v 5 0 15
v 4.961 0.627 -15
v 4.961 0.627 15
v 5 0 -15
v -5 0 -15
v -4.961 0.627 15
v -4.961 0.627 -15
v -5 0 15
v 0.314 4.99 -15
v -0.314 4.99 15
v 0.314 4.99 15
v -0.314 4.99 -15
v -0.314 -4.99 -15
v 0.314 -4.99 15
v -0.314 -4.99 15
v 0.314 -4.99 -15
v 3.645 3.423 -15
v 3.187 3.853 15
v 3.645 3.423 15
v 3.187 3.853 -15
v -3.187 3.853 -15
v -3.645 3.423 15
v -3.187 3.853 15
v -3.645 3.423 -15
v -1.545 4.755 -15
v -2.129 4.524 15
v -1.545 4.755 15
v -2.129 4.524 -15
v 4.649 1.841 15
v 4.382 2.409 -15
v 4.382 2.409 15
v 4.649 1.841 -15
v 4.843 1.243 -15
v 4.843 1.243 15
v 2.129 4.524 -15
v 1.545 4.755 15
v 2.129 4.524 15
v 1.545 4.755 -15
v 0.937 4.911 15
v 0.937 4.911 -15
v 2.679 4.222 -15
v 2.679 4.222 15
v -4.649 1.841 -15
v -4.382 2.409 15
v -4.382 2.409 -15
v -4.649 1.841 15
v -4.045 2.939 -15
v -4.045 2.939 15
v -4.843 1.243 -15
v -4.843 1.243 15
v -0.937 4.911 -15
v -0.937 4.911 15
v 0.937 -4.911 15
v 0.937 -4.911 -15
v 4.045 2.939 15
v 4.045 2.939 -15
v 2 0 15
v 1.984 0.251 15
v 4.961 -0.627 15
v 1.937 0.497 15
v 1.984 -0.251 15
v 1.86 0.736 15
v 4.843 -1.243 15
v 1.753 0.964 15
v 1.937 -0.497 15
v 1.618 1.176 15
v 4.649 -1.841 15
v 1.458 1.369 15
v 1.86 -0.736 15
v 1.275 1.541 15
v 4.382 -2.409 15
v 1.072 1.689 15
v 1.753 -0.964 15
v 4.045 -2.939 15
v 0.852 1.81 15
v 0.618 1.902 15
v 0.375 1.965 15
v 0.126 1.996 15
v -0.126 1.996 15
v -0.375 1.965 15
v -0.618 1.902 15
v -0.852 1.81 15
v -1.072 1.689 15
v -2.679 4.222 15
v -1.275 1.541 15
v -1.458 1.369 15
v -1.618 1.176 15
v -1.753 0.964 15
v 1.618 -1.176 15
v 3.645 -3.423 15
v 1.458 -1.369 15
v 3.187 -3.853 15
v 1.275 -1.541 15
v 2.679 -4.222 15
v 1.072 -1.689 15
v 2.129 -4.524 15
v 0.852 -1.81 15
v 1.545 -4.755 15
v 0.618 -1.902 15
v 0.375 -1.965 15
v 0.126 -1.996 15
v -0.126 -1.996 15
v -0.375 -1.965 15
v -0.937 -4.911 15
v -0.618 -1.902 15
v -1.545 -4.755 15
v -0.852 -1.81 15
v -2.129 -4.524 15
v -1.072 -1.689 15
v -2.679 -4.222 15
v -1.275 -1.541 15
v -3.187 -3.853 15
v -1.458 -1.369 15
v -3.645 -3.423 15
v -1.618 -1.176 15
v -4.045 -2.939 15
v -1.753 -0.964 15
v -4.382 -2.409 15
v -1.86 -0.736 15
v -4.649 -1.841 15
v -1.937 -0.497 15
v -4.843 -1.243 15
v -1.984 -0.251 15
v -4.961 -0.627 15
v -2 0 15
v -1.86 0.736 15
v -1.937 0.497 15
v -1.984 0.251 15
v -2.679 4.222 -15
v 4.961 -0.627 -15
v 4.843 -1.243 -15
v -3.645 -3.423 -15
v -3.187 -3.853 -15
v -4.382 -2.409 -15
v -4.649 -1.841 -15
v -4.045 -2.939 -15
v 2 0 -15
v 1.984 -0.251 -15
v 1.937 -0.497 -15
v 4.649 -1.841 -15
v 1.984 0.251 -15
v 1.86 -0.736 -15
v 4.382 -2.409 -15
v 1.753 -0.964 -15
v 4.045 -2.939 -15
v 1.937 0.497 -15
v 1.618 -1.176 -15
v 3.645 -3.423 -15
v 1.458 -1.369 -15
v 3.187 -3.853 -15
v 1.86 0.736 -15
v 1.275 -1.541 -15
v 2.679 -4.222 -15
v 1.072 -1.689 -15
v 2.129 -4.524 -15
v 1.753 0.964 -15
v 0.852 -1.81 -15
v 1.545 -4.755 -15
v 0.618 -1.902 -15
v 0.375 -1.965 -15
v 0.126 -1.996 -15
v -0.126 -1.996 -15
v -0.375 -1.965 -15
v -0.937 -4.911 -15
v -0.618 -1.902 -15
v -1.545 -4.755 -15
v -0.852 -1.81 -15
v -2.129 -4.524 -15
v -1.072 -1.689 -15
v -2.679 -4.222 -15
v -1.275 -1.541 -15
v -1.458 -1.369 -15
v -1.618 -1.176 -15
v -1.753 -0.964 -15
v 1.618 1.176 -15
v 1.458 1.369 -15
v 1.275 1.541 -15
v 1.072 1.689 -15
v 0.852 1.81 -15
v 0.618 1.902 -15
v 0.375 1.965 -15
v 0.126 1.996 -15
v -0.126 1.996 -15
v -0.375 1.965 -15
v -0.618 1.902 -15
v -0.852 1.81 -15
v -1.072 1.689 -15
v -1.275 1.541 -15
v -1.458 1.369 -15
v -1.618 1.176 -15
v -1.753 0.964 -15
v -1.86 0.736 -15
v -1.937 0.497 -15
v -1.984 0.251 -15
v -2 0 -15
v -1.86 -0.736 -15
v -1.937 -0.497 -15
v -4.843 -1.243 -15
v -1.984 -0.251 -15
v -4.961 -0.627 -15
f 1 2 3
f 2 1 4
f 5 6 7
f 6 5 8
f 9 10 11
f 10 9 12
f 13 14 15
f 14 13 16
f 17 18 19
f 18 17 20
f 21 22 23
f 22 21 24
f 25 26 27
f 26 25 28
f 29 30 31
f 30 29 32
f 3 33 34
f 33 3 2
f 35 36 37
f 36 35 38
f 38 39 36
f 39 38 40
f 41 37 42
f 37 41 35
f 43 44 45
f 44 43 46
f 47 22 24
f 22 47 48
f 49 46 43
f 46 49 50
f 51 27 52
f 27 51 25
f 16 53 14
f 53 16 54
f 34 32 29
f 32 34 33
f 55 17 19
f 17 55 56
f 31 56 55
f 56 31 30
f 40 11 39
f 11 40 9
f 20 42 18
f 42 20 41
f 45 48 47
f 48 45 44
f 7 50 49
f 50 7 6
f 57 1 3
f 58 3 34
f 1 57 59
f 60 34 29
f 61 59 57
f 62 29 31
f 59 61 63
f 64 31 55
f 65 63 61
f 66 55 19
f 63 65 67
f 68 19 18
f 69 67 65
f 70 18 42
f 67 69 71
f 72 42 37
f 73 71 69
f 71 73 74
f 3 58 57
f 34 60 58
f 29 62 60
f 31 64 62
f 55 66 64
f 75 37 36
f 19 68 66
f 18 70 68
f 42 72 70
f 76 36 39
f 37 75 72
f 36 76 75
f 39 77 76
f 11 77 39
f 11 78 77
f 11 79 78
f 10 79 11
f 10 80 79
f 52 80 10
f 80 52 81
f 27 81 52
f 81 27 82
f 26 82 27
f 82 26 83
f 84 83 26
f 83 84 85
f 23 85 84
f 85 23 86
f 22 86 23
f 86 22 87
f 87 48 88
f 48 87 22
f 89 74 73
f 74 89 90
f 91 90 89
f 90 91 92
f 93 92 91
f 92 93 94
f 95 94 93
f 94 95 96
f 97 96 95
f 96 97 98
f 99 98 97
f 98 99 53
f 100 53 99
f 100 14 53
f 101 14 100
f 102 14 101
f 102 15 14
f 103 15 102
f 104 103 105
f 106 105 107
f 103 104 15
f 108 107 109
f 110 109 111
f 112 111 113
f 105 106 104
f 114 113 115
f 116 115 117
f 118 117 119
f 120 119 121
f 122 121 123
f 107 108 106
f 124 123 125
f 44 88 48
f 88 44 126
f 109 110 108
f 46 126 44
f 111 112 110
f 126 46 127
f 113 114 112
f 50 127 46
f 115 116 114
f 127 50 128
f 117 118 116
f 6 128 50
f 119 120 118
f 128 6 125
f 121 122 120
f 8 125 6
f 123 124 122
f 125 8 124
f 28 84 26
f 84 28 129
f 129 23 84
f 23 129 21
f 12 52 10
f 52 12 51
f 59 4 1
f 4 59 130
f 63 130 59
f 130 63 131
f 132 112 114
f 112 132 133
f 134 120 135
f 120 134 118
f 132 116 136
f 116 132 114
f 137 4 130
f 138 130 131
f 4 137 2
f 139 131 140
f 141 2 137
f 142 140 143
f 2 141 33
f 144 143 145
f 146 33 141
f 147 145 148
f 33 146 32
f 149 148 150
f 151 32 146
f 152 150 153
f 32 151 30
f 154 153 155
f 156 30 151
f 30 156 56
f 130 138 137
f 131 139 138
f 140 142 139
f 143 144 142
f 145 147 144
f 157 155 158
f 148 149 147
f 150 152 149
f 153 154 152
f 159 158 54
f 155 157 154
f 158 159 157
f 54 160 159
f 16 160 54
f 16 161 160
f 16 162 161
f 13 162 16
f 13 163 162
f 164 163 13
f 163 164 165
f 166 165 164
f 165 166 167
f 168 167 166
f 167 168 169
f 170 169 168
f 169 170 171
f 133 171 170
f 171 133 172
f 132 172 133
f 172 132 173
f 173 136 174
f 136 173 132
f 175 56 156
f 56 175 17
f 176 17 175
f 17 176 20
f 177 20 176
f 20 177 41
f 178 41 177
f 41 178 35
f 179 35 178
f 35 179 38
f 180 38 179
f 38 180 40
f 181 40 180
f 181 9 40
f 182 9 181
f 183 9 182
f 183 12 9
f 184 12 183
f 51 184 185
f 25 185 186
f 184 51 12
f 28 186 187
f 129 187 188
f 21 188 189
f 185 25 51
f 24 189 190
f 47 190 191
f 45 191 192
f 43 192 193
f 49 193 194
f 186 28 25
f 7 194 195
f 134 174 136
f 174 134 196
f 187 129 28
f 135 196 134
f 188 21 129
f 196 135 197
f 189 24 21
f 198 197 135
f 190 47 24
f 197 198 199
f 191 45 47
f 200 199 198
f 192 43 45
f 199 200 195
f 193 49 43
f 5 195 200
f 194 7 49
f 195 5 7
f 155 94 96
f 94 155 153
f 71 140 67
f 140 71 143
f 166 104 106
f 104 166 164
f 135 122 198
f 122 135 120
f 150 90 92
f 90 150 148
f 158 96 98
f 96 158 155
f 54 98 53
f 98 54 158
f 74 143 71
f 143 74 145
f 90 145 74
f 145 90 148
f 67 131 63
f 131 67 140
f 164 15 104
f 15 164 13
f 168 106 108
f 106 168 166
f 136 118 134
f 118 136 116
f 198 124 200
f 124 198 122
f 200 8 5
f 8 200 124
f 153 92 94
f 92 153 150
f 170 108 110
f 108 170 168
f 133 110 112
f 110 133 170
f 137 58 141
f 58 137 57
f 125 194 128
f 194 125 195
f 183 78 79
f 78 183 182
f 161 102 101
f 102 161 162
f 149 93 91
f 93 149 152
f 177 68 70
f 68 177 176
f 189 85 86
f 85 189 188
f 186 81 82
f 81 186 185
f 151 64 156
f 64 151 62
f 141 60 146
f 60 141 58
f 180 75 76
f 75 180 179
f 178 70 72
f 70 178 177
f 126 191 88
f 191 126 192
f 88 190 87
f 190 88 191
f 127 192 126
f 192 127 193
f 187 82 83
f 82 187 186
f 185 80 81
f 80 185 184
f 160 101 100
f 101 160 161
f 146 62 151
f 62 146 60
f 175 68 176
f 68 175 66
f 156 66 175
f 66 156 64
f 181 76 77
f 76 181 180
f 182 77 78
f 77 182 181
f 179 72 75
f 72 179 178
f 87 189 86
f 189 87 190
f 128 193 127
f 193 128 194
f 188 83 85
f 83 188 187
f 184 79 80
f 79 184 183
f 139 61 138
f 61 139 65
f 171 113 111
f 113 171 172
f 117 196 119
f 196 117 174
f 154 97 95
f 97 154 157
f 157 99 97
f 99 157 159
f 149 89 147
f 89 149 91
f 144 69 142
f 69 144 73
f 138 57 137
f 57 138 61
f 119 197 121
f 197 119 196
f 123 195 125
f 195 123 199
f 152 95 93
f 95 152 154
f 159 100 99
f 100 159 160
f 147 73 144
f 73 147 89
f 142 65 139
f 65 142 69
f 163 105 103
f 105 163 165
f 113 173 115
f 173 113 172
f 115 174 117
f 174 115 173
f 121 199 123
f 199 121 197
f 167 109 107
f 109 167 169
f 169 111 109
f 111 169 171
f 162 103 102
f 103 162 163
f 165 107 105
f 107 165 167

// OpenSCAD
$fn = 50;


difference() {
	union() {
		translate(v = [0, 0, -15.0000000000]) {
			cylinder(h = 30, r = 5.0000000000);
		}
	}
	union() {
		translate(v = [0, 0, -100.0000000000]) {
			cylinder(h = 200, r = 2);
		}
	}
}
